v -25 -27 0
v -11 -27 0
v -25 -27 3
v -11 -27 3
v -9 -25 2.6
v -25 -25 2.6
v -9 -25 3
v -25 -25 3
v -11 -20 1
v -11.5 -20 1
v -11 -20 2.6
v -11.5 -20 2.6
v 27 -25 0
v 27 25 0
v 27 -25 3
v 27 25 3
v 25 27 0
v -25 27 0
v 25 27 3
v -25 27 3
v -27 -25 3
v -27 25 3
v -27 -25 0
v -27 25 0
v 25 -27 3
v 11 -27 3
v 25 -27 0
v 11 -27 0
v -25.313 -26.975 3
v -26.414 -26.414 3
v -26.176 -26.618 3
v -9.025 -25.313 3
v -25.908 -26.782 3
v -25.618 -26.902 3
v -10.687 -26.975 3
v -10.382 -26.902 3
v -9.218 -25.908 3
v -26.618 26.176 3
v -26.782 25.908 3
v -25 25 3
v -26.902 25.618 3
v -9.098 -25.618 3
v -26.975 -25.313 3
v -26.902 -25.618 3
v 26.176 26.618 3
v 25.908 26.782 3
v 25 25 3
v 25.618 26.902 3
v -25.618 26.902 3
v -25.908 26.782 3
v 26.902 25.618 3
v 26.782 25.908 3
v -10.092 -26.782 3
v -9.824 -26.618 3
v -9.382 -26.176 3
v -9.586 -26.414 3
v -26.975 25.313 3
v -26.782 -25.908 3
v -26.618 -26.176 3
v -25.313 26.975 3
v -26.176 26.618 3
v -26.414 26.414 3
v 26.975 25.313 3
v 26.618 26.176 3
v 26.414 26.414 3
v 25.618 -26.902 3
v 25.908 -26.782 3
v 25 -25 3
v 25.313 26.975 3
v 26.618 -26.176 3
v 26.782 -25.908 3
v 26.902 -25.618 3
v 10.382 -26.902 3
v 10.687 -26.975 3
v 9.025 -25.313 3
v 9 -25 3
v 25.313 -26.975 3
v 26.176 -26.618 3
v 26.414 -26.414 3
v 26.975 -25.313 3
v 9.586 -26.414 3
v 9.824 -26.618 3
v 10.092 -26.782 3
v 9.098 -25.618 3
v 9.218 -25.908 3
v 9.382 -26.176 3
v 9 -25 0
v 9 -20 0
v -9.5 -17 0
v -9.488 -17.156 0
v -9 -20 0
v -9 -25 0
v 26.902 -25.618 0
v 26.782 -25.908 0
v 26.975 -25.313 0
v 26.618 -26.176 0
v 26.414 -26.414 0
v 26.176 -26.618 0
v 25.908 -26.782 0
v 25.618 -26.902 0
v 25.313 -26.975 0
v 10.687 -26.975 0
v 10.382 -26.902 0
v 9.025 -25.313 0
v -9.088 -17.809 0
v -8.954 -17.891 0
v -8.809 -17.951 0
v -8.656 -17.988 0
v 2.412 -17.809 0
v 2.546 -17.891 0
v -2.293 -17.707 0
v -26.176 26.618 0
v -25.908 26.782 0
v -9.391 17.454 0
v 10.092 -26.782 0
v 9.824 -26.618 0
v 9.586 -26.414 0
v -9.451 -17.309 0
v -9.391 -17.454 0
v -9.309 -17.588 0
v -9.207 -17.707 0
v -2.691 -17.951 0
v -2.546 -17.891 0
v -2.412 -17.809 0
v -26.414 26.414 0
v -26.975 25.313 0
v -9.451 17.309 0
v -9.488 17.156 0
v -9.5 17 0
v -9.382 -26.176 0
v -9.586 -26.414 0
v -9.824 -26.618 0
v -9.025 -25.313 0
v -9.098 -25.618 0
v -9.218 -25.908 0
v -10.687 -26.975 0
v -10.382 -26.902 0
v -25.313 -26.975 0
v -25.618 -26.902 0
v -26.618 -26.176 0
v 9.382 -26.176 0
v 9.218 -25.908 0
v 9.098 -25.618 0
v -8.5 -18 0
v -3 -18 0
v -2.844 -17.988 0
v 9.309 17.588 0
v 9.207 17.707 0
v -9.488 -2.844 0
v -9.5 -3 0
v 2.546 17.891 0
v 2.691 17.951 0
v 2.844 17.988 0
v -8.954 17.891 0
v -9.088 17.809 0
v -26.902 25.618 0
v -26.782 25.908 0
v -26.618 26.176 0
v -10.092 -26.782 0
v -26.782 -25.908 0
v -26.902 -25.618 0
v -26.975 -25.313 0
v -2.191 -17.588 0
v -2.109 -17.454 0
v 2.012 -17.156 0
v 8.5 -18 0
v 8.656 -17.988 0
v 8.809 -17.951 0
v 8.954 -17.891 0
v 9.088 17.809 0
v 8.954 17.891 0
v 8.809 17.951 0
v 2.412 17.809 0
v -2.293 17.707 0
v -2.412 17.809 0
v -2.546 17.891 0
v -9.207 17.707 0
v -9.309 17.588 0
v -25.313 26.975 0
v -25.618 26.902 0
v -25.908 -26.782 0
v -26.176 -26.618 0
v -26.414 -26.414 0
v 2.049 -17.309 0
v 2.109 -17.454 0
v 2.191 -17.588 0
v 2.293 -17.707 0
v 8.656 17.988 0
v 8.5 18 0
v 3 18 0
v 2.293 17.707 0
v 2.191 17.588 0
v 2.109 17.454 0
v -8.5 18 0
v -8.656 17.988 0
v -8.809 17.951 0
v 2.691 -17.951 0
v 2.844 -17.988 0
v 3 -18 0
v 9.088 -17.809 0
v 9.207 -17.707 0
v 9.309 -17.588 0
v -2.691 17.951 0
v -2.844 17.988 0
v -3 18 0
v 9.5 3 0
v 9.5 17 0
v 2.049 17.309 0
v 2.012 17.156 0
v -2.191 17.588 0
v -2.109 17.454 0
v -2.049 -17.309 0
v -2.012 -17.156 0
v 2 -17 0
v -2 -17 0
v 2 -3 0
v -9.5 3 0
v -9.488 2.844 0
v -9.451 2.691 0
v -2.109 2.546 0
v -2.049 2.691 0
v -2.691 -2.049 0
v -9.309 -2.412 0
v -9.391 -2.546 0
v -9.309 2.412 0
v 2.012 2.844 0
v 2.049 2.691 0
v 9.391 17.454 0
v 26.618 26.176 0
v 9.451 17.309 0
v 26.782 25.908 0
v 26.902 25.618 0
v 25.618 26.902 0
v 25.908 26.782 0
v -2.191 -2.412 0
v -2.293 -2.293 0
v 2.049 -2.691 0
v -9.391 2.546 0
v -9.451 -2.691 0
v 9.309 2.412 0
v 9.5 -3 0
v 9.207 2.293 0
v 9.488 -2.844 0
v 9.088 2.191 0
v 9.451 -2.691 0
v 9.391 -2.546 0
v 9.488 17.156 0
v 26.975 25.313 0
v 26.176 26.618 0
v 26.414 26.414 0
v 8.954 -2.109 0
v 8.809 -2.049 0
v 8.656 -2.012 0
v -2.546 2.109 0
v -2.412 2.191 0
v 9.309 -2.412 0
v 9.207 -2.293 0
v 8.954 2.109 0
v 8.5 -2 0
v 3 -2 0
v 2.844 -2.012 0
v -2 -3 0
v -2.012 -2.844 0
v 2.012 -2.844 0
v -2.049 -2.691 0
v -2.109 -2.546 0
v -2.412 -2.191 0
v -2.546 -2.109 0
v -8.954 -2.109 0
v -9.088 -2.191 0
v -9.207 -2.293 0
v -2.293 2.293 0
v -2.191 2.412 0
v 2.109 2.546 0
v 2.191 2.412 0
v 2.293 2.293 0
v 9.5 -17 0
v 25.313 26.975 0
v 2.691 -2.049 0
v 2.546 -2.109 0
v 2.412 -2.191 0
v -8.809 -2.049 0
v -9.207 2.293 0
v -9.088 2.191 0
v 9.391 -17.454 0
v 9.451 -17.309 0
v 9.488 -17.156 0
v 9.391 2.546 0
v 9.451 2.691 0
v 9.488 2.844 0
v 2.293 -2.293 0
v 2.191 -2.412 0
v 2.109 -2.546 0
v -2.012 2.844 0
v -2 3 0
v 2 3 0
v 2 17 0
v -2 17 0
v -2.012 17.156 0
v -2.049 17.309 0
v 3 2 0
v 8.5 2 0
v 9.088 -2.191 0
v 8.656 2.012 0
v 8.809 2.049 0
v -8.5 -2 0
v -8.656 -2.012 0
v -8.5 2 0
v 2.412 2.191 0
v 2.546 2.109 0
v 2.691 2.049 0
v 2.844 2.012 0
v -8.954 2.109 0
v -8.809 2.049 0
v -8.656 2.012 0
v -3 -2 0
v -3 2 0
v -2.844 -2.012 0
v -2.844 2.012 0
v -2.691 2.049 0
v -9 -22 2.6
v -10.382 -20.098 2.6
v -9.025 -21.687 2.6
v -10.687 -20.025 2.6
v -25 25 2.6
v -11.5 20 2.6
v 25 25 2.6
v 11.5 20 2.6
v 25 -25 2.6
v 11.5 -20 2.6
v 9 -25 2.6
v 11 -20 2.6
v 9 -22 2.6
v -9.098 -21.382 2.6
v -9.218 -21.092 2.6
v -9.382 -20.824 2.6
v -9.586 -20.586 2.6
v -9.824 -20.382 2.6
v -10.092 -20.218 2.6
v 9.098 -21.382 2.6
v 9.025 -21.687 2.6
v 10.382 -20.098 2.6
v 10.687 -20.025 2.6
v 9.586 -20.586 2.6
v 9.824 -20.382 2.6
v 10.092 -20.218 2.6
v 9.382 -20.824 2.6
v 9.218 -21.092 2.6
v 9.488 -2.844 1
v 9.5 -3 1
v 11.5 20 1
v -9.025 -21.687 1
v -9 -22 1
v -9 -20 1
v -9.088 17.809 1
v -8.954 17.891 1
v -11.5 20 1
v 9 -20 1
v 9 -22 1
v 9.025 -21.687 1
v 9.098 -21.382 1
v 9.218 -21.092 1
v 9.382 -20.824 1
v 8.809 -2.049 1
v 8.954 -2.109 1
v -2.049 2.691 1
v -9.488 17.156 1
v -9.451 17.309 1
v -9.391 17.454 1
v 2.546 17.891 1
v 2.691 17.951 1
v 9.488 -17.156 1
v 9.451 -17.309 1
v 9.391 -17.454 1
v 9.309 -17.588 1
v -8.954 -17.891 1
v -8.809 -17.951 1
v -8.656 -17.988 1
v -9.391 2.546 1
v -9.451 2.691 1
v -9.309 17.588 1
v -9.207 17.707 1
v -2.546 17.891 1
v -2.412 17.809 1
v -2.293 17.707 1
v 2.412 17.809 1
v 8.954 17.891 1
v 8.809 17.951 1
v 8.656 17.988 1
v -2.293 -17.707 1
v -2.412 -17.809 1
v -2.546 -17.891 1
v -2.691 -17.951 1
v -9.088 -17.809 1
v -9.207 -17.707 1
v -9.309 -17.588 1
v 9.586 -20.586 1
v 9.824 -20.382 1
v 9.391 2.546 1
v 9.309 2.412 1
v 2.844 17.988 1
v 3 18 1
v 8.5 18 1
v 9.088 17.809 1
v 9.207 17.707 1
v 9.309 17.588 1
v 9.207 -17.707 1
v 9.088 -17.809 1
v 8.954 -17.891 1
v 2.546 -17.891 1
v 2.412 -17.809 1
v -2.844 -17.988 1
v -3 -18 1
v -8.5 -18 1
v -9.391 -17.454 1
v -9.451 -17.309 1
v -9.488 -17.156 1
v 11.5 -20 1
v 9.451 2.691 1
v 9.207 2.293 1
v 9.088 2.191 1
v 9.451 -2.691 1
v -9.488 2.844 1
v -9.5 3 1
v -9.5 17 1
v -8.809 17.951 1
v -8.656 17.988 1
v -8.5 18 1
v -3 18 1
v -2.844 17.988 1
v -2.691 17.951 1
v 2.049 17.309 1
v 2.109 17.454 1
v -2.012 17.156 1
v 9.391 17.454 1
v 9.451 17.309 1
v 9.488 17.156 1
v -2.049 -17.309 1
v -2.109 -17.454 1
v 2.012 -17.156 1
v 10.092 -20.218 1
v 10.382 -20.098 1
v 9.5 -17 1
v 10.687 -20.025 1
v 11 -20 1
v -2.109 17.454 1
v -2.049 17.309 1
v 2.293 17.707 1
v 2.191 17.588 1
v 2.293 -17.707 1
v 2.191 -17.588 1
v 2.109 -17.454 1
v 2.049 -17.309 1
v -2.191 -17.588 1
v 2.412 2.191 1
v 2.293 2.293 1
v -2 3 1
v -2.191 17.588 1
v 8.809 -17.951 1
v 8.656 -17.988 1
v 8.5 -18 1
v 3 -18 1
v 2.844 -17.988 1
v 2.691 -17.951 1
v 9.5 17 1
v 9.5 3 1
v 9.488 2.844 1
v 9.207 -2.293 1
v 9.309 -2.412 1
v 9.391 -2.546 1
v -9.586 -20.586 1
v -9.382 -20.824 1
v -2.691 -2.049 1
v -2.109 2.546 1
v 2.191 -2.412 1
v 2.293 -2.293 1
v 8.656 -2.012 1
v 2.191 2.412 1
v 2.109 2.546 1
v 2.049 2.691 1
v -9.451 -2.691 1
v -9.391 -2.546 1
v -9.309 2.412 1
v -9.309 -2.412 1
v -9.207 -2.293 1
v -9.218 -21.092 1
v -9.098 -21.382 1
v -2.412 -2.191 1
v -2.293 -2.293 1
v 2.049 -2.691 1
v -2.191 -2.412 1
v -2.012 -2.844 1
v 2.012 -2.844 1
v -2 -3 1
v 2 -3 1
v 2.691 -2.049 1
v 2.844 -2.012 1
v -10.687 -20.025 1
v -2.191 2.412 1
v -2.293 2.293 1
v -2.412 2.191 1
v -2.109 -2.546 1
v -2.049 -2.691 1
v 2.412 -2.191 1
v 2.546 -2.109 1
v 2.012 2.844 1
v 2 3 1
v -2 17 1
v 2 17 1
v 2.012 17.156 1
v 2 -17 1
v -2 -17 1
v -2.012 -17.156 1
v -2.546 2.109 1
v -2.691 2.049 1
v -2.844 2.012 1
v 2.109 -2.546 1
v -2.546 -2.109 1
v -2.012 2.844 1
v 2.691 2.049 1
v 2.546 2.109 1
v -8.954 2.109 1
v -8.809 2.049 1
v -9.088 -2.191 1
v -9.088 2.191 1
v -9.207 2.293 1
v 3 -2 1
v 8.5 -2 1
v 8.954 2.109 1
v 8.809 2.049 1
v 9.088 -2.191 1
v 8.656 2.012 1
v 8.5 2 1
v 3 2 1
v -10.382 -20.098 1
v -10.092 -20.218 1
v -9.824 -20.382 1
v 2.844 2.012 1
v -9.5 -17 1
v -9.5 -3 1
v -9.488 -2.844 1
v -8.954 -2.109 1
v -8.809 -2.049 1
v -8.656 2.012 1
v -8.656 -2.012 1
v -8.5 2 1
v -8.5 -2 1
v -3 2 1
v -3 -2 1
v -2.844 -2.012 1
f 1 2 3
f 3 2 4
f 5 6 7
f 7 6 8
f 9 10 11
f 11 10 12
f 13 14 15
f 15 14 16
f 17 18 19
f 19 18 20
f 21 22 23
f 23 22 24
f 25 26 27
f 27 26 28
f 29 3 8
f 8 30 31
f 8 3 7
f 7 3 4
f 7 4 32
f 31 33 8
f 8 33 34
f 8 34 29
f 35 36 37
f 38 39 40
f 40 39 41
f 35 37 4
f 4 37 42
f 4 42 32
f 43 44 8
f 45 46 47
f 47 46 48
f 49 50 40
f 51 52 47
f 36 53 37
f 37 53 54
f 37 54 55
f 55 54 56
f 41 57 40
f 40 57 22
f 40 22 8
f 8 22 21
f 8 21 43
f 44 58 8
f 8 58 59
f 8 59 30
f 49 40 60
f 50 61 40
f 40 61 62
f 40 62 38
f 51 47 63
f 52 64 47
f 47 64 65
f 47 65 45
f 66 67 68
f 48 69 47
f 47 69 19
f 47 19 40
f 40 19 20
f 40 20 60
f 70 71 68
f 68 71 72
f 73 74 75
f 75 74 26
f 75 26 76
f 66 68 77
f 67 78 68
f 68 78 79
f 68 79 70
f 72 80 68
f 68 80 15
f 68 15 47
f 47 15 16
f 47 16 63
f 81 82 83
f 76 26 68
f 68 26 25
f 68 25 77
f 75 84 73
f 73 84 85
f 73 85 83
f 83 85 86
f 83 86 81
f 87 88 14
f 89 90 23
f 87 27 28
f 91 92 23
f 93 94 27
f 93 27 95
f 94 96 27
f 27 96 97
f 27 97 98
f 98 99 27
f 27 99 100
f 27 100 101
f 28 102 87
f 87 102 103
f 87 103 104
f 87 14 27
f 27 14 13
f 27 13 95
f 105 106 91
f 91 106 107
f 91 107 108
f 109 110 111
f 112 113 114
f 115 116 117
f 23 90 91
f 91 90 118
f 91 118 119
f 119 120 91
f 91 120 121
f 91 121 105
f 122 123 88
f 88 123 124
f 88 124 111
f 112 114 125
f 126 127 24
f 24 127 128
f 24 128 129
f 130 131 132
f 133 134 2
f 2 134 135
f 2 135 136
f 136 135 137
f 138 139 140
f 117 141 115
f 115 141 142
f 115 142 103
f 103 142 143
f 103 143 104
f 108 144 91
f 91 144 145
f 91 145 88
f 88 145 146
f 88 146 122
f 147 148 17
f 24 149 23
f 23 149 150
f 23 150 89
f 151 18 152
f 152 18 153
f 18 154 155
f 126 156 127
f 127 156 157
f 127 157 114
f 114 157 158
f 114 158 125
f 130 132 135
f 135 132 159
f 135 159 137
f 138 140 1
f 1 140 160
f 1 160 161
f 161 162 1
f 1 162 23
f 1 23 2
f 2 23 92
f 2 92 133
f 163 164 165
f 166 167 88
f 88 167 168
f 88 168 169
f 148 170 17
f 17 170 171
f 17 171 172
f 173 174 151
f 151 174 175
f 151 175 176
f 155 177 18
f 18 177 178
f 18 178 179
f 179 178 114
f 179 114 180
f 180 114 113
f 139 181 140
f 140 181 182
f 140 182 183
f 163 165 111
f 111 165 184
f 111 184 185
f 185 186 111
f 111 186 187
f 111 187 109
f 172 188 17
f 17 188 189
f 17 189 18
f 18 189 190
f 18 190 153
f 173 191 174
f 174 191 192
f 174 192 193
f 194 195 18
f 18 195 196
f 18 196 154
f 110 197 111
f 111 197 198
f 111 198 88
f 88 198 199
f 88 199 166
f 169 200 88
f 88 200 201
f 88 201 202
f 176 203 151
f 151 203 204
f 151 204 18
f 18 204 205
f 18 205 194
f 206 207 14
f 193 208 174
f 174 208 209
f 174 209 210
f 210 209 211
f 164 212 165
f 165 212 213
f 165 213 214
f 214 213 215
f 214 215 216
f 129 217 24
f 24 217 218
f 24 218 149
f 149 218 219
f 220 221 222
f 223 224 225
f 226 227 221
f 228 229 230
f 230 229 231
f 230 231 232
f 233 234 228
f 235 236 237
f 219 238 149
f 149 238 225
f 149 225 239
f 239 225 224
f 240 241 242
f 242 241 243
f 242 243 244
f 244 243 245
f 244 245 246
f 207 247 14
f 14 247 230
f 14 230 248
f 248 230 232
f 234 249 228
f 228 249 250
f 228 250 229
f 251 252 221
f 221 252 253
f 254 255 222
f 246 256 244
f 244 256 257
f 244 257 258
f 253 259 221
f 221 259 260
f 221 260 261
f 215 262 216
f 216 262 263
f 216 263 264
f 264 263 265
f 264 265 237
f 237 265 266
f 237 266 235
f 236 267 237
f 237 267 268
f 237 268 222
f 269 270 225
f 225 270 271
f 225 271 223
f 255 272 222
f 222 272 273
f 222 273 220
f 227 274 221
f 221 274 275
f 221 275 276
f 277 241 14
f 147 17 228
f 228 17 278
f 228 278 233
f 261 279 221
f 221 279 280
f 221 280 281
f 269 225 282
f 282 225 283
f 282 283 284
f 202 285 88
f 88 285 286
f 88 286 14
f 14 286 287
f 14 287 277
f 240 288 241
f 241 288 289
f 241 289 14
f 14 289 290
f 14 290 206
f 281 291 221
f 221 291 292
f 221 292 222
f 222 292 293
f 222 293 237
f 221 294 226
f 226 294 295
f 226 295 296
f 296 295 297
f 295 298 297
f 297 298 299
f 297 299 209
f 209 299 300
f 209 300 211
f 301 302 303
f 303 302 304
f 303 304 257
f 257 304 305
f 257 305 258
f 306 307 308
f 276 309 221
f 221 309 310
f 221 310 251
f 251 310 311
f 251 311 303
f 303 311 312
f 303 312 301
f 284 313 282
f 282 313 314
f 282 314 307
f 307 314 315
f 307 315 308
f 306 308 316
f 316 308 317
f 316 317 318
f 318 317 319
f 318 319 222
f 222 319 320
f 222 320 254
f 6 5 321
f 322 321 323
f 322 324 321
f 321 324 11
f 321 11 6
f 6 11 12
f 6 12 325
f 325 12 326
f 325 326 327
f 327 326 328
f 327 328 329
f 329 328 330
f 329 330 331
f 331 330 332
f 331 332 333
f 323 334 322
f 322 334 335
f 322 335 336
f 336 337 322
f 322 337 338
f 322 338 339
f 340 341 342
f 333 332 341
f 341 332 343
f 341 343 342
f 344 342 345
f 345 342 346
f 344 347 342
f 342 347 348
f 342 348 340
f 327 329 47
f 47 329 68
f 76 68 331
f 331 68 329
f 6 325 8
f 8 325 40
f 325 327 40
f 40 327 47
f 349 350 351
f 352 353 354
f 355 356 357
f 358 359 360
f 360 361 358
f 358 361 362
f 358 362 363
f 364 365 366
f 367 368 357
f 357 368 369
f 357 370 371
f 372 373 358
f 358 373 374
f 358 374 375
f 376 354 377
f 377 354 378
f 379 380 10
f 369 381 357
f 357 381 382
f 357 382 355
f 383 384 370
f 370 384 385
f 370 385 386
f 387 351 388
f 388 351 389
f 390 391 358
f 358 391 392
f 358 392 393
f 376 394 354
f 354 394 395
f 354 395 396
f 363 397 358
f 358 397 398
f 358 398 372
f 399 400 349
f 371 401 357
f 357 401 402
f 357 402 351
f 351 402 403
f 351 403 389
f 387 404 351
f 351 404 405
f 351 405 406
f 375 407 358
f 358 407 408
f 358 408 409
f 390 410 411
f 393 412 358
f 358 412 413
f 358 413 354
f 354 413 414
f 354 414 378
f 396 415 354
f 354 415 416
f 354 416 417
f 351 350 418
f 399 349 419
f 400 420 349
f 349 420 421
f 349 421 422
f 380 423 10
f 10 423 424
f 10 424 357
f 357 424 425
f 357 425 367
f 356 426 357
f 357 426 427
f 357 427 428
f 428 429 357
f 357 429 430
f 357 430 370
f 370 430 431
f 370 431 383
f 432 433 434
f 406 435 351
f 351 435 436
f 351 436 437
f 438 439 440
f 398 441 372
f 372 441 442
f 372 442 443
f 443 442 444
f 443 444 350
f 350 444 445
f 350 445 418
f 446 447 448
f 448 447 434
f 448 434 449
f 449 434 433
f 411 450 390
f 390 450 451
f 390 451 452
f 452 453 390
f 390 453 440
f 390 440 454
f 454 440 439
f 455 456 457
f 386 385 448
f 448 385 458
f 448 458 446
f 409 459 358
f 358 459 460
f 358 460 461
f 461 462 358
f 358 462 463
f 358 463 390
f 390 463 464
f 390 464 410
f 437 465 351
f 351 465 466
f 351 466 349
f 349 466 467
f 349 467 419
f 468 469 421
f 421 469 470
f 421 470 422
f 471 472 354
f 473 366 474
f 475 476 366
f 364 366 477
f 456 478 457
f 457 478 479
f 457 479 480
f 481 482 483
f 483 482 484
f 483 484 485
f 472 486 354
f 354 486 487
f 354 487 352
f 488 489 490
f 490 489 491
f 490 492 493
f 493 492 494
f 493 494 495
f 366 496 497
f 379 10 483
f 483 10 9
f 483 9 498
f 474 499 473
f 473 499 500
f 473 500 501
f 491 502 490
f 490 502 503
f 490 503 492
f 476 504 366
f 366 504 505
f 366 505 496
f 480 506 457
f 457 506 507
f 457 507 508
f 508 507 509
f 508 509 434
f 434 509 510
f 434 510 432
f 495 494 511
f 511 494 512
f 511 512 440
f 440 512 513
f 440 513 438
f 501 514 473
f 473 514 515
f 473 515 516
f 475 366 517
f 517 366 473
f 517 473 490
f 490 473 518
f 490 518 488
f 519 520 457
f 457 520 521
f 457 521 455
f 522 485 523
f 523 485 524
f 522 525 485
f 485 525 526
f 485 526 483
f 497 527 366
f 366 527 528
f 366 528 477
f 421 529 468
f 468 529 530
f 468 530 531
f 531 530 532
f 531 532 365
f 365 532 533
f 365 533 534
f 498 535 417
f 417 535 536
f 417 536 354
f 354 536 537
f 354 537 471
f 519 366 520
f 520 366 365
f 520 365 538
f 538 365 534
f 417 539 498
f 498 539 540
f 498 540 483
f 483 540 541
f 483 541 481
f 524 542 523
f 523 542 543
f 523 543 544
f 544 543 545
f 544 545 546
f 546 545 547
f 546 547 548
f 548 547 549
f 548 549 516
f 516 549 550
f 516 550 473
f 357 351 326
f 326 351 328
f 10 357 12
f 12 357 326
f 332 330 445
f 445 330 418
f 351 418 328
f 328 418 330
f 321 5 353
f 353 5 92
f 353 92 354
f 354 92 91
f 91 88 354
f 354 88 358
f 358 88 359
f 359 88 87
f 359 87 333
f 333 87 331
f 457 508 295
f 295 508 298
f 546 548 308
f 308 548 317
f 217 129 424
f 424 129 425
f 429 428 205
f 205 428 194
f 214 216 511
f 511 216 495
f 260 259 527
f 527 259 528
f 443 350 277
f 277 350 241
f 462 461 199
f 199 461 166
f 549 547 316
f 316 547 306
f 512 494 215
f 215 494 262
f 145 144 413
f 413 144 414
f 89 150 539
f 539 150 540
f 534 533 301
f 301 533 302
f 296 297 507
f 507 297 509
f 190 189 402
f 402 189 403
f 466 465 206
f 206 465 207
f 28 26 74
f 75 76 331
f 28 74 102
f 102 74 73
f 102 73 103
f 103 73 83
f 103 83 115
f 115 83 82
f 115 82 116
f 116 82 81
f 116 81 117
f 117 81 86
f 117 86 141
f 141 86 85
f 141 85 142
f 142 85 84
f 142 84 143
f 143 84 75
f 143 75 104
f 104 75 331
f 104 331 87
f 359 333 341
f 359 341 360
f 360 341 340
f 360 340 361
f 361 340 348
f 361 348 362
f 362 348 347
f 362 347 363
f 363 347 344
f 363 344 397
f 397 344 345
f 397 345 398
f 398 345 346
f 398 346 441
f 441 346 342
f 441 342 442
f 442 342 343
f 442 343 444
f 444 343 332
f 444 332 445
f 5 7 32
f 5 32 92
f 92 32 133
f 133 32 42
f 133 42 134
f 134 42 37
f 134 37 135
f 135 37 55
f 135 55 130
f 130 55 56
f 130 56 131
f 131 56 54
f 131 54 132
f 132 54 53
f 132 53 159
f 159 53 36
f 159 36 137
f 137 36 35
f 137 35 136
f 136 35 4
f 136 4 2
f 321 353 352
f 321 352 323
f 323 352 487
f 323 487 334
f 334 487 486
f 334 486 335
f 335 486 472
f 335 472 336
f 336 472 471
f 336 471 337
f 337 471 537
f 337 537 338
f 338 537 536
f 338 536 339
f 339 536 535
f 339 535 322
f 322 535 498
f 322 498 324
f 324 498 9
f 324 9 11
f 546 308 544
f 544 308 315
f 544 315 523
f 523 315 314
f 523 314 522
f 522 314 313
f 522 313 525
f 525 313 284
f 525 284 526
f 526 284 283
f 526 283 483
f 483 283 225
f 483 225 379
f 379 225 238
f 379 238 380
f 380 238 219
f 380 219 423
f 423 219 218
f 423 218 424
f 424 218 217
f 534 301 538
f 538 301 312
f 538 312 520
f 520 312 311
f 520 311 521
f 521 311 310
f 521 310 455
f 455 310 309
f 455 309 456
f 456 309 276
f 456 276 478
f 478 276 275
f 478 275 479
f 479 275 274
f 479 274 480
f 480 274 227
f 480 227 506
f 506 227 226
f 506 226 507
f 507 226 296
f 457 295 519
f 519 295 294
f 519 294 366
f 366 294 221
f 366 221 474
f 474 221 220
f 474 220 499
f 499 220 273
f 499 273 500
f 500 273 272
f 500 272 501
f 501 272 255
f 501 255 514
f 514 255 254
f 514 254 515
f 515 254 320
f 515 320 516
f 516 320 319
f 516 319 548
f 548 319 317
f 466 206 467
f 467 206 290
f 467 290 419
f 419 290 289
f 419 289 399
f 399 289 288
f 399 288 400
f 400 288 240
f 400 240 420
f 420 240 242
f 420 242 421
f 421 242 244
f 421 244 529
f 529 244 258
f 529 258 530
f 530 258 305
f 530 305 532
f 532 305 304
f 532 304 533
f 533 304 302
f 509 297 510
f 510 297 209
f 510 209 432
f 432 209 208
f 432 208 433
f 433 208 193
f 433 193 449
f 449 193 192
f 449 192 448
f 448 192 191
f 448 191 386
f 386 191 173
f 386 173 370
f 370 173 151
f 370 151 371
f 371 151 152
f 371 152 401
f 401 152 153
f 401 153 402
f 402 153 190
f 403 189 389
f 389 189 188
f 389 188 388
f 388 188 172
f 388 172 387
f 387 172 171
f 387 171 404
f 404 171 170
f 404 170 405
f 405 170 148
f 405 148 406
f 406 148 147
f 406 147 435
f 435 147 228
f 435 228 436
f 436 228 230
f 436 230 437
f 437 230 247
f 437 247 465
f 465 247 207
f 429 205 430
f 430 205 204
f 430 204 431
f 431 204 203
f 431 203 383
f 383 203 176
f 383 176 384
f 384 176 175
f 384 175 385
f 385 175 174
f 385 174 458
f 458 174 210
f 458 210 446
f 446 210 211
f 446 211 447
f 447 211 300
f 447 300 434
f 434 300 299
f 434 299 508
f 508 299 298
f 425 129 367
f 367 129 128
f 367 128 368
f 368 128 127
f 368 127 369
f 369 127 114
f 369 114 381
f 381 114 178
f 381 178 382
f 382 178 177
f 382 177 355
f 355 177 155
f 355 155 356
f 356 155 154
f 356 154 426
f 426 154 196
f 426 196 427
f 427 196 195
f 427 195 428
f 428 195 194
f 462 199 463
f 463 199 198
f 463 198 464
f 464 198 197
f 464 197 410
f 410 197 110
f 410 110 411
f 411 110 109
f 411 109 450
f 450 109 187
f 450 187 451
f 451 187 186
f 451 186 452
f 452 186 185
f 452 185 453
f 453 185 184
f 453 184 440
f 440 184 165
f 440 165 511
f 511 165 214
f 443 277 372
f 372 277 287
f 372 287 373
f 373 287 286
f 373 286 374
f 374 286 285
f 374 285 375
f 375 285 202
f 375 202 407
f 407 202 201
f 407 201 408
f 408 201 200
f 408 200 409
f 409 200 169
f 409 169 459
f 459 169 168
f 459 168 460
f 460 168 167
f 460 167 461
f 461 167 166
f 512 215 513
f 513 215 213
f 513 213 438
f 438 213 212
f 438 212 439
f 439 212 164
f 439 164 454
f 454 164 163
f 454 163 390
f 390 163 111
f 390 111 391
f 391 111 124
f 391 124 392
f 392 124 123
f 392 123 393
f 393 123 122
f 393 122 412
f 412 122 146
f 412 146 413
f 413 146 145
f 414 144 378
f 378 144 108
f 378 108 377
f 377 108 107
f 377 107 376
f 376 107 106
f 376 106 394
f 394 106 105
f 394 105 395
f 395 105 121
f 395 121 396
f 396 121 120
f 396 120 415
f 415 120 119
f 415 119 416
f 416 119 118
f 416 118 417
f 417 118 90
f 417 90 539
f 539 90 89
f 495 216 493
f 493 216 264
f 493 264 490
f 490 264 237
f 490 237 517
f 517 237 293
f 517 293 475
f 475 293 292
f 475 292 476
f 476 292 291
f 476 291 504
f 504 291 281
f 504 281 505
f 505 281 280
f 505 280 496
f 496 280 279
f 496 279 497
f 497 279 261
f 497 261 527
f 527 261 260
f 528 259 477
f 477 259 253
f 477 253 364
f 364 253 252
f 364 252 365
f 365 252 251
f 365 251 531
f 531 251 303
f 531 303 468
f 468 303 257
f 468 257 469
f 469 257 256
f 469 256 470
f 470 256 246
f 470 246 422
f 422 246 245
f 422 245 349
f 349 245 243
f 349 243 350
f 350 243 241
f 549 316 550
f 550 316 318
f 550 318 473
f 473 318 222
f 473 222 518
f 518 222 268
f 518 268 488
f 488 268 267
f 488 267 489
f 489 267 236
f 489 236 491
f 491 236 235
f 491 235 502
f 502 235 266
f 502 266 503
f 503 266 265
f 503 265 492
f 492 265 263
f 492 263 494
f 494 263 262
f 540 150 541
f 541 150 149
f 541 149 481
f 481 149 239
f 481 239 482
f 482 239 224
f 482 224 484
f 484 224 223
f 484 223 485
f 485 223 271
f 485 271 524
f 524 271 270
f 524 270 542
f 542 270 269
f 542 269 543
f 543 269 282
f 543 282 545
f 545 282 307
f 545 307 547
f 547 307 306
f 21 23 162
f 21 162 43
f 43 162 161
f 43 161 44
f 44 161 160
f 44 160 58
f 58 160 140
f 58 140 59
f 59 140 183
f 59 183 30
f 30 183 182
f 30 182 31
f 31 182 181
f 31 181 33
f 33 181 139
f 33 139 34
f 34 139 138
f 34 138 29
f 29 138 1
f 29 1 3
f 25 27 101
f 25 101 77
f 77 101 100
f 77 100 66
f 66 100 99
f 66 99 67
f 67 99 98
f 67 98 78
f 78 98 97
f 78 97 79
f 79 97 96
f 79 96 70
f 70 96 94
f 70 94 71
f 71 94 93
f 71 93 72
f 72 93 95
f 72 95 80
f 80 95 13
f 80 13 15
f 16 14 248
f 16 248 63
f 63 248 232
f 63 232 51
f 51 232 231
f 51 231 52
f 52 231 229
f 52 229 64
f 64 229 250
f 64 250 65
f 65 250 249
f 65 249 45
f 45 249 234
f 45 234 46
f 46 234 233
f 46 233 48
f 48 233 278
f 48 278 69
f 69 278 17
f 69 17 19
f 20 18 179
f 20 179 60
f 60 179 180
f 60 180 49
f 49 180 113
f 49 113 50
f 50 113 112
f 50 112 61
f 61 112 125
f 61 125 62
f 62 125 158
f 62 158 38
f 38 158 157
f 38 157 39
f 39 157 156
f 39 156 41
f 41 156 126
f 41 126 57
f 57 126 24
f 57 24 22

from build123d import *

# Parameters (mm, degrees)
SKETCH_1_W          = 54
SKETCH_1_H          = 54
EXTRUDE_1_DEPTH     = 3
SKETCH_2_W          = 23
SKETCH_2_H          = 40
CUT_EXTRUDE_1_DEPTH = 2
SKETCH_3_W          = 50
SKETCH_3_H          = 50
CUT_EXTRUDE_2_DEPTH = 0.4
SKETCH_4_W          = 18
SKETCH_4_H          = 7
CUT_EXTRUDE_3_DEPTH = 39.301436004
SKETCH_5_W          = 7.5
SKETCH_5_H          = 16
CUT_EXTRUDE_4_DEPTH = 39.236108589
FILLET_1_R          = 2
FILLET_2_R          = 1
FILLET_3_R          = 2


with BuildPart() as part:
    # Эскиз1 → Бобышка-Вытянуть1 (new body)
    with BuildSketch(Plane.XY):
        Rectangle(SKETCH_1_W, SKETCH_1_H)
    extrude(amount=EXTRUDE_1_DEPTH)

    # Эскиз2 → Вырез-Вытянуть1 (cut)
    with BuildSketch(Plane.XY.offset(3)):
        Rectangle(SKETCH_2_W, SKETCH_2_H)
    extrude(amount=-CUT_EXTRUDE_1_DEPTH, mode=Mode.SUBTRACT)

    # Эскиз3 → Вырез-Вытянуть2 (cut)
    with BuildSketch(Plane.XY.offset(3)):
        Rectangle(SKETCH_3_W, SKETCH_3_H)
    extrude(amount=-CUT_EXTRUDE_2_DEPTH, mode=Mode.SUBTRACT)

    # Эскиз4 → Вырез-Вытянуть3 (cut, through all)
    with BuildSketch(Plane.XY.offset(3)):
        with Locations((0, -23.5)):
            Rectangle(SKETCH_4_W, SKETCH_4_H)
    extrude(amount=-CUT_EXTRUDE_3_DEPTH, mode=Mode.SUBTRACT)

    # Эскиз5 → Вырез-Вытянуть4 (cut, through all)
    with BuildSketch(Plane.XY.offset(1)):
        with Locations((-5.75, 10)):
            Rectangle(SKETCH_5_W, SKETCH_5_H)
        with Locations((5.75, 10)):
            Rectangle(SKETCH_5_W, SKETCH_5_H)
        with Locations((-5.75, -10)):
            Rectangle(SKETCH_5_W, SKETCH_5_H)
        with Locations((5.75, -10)):
            Rectangle(SKETCH_5_W, SKETCH_5_H)
    extrude(amount=-CUT_EXTRUDE_4_DEPTH, mode=Mode.SUBTRACT)

    # Скругление1
    fillet_1_edges = [part.edges().sort_by_distance(p)[0] for p in [
        (9, -27, 1.5),
        (9, -20, 1.8),
        (-9, -27, 1.5),
        (-9, -20, 1.8),
    ]]
    fillet(fillet_1_edges, radius=FILLET_1_R)

    # Скругление2
    fillet_2_edges = [part.edges().sort_by_distance(p)[0] for p in [
        (2, -18, 0.5),
        (2, -2, 0.5),
        (9.5, -2, 0.5),
        (9.5, -18, 0.5),
        (-2, 18, 0.5),
        (-2, 2, 0.5),
        (-9.5, 2, 0.5),
        (-9.5, 18, 0.5),
        (9.5, 2, 0.5),
        (2, 2, 0.5),
        (2, 18, 0.5),
        (9.5, 18, 0.5),
        (-9.5, -2, 0.5),
        (-2, -2, 0.5),
        (-2, -18, 0.5),
        (-9.5, -18, 0.5),
    ]]
    fillet(fillet_2_edges, radius=FILLET_2_R)

    # Скругление3
    fillet_3_edges = [part.edges().sort_by_distance(p)[0] for p in [
        (27, -27, 1.5),
        (-27, -27, 1.5),
        (-27, 27, 1.5),
        (27, 27, 1.5),
    ]]
    fillet(fillet_3_edges, radius=FILLET_3_R)


solid = part.part
